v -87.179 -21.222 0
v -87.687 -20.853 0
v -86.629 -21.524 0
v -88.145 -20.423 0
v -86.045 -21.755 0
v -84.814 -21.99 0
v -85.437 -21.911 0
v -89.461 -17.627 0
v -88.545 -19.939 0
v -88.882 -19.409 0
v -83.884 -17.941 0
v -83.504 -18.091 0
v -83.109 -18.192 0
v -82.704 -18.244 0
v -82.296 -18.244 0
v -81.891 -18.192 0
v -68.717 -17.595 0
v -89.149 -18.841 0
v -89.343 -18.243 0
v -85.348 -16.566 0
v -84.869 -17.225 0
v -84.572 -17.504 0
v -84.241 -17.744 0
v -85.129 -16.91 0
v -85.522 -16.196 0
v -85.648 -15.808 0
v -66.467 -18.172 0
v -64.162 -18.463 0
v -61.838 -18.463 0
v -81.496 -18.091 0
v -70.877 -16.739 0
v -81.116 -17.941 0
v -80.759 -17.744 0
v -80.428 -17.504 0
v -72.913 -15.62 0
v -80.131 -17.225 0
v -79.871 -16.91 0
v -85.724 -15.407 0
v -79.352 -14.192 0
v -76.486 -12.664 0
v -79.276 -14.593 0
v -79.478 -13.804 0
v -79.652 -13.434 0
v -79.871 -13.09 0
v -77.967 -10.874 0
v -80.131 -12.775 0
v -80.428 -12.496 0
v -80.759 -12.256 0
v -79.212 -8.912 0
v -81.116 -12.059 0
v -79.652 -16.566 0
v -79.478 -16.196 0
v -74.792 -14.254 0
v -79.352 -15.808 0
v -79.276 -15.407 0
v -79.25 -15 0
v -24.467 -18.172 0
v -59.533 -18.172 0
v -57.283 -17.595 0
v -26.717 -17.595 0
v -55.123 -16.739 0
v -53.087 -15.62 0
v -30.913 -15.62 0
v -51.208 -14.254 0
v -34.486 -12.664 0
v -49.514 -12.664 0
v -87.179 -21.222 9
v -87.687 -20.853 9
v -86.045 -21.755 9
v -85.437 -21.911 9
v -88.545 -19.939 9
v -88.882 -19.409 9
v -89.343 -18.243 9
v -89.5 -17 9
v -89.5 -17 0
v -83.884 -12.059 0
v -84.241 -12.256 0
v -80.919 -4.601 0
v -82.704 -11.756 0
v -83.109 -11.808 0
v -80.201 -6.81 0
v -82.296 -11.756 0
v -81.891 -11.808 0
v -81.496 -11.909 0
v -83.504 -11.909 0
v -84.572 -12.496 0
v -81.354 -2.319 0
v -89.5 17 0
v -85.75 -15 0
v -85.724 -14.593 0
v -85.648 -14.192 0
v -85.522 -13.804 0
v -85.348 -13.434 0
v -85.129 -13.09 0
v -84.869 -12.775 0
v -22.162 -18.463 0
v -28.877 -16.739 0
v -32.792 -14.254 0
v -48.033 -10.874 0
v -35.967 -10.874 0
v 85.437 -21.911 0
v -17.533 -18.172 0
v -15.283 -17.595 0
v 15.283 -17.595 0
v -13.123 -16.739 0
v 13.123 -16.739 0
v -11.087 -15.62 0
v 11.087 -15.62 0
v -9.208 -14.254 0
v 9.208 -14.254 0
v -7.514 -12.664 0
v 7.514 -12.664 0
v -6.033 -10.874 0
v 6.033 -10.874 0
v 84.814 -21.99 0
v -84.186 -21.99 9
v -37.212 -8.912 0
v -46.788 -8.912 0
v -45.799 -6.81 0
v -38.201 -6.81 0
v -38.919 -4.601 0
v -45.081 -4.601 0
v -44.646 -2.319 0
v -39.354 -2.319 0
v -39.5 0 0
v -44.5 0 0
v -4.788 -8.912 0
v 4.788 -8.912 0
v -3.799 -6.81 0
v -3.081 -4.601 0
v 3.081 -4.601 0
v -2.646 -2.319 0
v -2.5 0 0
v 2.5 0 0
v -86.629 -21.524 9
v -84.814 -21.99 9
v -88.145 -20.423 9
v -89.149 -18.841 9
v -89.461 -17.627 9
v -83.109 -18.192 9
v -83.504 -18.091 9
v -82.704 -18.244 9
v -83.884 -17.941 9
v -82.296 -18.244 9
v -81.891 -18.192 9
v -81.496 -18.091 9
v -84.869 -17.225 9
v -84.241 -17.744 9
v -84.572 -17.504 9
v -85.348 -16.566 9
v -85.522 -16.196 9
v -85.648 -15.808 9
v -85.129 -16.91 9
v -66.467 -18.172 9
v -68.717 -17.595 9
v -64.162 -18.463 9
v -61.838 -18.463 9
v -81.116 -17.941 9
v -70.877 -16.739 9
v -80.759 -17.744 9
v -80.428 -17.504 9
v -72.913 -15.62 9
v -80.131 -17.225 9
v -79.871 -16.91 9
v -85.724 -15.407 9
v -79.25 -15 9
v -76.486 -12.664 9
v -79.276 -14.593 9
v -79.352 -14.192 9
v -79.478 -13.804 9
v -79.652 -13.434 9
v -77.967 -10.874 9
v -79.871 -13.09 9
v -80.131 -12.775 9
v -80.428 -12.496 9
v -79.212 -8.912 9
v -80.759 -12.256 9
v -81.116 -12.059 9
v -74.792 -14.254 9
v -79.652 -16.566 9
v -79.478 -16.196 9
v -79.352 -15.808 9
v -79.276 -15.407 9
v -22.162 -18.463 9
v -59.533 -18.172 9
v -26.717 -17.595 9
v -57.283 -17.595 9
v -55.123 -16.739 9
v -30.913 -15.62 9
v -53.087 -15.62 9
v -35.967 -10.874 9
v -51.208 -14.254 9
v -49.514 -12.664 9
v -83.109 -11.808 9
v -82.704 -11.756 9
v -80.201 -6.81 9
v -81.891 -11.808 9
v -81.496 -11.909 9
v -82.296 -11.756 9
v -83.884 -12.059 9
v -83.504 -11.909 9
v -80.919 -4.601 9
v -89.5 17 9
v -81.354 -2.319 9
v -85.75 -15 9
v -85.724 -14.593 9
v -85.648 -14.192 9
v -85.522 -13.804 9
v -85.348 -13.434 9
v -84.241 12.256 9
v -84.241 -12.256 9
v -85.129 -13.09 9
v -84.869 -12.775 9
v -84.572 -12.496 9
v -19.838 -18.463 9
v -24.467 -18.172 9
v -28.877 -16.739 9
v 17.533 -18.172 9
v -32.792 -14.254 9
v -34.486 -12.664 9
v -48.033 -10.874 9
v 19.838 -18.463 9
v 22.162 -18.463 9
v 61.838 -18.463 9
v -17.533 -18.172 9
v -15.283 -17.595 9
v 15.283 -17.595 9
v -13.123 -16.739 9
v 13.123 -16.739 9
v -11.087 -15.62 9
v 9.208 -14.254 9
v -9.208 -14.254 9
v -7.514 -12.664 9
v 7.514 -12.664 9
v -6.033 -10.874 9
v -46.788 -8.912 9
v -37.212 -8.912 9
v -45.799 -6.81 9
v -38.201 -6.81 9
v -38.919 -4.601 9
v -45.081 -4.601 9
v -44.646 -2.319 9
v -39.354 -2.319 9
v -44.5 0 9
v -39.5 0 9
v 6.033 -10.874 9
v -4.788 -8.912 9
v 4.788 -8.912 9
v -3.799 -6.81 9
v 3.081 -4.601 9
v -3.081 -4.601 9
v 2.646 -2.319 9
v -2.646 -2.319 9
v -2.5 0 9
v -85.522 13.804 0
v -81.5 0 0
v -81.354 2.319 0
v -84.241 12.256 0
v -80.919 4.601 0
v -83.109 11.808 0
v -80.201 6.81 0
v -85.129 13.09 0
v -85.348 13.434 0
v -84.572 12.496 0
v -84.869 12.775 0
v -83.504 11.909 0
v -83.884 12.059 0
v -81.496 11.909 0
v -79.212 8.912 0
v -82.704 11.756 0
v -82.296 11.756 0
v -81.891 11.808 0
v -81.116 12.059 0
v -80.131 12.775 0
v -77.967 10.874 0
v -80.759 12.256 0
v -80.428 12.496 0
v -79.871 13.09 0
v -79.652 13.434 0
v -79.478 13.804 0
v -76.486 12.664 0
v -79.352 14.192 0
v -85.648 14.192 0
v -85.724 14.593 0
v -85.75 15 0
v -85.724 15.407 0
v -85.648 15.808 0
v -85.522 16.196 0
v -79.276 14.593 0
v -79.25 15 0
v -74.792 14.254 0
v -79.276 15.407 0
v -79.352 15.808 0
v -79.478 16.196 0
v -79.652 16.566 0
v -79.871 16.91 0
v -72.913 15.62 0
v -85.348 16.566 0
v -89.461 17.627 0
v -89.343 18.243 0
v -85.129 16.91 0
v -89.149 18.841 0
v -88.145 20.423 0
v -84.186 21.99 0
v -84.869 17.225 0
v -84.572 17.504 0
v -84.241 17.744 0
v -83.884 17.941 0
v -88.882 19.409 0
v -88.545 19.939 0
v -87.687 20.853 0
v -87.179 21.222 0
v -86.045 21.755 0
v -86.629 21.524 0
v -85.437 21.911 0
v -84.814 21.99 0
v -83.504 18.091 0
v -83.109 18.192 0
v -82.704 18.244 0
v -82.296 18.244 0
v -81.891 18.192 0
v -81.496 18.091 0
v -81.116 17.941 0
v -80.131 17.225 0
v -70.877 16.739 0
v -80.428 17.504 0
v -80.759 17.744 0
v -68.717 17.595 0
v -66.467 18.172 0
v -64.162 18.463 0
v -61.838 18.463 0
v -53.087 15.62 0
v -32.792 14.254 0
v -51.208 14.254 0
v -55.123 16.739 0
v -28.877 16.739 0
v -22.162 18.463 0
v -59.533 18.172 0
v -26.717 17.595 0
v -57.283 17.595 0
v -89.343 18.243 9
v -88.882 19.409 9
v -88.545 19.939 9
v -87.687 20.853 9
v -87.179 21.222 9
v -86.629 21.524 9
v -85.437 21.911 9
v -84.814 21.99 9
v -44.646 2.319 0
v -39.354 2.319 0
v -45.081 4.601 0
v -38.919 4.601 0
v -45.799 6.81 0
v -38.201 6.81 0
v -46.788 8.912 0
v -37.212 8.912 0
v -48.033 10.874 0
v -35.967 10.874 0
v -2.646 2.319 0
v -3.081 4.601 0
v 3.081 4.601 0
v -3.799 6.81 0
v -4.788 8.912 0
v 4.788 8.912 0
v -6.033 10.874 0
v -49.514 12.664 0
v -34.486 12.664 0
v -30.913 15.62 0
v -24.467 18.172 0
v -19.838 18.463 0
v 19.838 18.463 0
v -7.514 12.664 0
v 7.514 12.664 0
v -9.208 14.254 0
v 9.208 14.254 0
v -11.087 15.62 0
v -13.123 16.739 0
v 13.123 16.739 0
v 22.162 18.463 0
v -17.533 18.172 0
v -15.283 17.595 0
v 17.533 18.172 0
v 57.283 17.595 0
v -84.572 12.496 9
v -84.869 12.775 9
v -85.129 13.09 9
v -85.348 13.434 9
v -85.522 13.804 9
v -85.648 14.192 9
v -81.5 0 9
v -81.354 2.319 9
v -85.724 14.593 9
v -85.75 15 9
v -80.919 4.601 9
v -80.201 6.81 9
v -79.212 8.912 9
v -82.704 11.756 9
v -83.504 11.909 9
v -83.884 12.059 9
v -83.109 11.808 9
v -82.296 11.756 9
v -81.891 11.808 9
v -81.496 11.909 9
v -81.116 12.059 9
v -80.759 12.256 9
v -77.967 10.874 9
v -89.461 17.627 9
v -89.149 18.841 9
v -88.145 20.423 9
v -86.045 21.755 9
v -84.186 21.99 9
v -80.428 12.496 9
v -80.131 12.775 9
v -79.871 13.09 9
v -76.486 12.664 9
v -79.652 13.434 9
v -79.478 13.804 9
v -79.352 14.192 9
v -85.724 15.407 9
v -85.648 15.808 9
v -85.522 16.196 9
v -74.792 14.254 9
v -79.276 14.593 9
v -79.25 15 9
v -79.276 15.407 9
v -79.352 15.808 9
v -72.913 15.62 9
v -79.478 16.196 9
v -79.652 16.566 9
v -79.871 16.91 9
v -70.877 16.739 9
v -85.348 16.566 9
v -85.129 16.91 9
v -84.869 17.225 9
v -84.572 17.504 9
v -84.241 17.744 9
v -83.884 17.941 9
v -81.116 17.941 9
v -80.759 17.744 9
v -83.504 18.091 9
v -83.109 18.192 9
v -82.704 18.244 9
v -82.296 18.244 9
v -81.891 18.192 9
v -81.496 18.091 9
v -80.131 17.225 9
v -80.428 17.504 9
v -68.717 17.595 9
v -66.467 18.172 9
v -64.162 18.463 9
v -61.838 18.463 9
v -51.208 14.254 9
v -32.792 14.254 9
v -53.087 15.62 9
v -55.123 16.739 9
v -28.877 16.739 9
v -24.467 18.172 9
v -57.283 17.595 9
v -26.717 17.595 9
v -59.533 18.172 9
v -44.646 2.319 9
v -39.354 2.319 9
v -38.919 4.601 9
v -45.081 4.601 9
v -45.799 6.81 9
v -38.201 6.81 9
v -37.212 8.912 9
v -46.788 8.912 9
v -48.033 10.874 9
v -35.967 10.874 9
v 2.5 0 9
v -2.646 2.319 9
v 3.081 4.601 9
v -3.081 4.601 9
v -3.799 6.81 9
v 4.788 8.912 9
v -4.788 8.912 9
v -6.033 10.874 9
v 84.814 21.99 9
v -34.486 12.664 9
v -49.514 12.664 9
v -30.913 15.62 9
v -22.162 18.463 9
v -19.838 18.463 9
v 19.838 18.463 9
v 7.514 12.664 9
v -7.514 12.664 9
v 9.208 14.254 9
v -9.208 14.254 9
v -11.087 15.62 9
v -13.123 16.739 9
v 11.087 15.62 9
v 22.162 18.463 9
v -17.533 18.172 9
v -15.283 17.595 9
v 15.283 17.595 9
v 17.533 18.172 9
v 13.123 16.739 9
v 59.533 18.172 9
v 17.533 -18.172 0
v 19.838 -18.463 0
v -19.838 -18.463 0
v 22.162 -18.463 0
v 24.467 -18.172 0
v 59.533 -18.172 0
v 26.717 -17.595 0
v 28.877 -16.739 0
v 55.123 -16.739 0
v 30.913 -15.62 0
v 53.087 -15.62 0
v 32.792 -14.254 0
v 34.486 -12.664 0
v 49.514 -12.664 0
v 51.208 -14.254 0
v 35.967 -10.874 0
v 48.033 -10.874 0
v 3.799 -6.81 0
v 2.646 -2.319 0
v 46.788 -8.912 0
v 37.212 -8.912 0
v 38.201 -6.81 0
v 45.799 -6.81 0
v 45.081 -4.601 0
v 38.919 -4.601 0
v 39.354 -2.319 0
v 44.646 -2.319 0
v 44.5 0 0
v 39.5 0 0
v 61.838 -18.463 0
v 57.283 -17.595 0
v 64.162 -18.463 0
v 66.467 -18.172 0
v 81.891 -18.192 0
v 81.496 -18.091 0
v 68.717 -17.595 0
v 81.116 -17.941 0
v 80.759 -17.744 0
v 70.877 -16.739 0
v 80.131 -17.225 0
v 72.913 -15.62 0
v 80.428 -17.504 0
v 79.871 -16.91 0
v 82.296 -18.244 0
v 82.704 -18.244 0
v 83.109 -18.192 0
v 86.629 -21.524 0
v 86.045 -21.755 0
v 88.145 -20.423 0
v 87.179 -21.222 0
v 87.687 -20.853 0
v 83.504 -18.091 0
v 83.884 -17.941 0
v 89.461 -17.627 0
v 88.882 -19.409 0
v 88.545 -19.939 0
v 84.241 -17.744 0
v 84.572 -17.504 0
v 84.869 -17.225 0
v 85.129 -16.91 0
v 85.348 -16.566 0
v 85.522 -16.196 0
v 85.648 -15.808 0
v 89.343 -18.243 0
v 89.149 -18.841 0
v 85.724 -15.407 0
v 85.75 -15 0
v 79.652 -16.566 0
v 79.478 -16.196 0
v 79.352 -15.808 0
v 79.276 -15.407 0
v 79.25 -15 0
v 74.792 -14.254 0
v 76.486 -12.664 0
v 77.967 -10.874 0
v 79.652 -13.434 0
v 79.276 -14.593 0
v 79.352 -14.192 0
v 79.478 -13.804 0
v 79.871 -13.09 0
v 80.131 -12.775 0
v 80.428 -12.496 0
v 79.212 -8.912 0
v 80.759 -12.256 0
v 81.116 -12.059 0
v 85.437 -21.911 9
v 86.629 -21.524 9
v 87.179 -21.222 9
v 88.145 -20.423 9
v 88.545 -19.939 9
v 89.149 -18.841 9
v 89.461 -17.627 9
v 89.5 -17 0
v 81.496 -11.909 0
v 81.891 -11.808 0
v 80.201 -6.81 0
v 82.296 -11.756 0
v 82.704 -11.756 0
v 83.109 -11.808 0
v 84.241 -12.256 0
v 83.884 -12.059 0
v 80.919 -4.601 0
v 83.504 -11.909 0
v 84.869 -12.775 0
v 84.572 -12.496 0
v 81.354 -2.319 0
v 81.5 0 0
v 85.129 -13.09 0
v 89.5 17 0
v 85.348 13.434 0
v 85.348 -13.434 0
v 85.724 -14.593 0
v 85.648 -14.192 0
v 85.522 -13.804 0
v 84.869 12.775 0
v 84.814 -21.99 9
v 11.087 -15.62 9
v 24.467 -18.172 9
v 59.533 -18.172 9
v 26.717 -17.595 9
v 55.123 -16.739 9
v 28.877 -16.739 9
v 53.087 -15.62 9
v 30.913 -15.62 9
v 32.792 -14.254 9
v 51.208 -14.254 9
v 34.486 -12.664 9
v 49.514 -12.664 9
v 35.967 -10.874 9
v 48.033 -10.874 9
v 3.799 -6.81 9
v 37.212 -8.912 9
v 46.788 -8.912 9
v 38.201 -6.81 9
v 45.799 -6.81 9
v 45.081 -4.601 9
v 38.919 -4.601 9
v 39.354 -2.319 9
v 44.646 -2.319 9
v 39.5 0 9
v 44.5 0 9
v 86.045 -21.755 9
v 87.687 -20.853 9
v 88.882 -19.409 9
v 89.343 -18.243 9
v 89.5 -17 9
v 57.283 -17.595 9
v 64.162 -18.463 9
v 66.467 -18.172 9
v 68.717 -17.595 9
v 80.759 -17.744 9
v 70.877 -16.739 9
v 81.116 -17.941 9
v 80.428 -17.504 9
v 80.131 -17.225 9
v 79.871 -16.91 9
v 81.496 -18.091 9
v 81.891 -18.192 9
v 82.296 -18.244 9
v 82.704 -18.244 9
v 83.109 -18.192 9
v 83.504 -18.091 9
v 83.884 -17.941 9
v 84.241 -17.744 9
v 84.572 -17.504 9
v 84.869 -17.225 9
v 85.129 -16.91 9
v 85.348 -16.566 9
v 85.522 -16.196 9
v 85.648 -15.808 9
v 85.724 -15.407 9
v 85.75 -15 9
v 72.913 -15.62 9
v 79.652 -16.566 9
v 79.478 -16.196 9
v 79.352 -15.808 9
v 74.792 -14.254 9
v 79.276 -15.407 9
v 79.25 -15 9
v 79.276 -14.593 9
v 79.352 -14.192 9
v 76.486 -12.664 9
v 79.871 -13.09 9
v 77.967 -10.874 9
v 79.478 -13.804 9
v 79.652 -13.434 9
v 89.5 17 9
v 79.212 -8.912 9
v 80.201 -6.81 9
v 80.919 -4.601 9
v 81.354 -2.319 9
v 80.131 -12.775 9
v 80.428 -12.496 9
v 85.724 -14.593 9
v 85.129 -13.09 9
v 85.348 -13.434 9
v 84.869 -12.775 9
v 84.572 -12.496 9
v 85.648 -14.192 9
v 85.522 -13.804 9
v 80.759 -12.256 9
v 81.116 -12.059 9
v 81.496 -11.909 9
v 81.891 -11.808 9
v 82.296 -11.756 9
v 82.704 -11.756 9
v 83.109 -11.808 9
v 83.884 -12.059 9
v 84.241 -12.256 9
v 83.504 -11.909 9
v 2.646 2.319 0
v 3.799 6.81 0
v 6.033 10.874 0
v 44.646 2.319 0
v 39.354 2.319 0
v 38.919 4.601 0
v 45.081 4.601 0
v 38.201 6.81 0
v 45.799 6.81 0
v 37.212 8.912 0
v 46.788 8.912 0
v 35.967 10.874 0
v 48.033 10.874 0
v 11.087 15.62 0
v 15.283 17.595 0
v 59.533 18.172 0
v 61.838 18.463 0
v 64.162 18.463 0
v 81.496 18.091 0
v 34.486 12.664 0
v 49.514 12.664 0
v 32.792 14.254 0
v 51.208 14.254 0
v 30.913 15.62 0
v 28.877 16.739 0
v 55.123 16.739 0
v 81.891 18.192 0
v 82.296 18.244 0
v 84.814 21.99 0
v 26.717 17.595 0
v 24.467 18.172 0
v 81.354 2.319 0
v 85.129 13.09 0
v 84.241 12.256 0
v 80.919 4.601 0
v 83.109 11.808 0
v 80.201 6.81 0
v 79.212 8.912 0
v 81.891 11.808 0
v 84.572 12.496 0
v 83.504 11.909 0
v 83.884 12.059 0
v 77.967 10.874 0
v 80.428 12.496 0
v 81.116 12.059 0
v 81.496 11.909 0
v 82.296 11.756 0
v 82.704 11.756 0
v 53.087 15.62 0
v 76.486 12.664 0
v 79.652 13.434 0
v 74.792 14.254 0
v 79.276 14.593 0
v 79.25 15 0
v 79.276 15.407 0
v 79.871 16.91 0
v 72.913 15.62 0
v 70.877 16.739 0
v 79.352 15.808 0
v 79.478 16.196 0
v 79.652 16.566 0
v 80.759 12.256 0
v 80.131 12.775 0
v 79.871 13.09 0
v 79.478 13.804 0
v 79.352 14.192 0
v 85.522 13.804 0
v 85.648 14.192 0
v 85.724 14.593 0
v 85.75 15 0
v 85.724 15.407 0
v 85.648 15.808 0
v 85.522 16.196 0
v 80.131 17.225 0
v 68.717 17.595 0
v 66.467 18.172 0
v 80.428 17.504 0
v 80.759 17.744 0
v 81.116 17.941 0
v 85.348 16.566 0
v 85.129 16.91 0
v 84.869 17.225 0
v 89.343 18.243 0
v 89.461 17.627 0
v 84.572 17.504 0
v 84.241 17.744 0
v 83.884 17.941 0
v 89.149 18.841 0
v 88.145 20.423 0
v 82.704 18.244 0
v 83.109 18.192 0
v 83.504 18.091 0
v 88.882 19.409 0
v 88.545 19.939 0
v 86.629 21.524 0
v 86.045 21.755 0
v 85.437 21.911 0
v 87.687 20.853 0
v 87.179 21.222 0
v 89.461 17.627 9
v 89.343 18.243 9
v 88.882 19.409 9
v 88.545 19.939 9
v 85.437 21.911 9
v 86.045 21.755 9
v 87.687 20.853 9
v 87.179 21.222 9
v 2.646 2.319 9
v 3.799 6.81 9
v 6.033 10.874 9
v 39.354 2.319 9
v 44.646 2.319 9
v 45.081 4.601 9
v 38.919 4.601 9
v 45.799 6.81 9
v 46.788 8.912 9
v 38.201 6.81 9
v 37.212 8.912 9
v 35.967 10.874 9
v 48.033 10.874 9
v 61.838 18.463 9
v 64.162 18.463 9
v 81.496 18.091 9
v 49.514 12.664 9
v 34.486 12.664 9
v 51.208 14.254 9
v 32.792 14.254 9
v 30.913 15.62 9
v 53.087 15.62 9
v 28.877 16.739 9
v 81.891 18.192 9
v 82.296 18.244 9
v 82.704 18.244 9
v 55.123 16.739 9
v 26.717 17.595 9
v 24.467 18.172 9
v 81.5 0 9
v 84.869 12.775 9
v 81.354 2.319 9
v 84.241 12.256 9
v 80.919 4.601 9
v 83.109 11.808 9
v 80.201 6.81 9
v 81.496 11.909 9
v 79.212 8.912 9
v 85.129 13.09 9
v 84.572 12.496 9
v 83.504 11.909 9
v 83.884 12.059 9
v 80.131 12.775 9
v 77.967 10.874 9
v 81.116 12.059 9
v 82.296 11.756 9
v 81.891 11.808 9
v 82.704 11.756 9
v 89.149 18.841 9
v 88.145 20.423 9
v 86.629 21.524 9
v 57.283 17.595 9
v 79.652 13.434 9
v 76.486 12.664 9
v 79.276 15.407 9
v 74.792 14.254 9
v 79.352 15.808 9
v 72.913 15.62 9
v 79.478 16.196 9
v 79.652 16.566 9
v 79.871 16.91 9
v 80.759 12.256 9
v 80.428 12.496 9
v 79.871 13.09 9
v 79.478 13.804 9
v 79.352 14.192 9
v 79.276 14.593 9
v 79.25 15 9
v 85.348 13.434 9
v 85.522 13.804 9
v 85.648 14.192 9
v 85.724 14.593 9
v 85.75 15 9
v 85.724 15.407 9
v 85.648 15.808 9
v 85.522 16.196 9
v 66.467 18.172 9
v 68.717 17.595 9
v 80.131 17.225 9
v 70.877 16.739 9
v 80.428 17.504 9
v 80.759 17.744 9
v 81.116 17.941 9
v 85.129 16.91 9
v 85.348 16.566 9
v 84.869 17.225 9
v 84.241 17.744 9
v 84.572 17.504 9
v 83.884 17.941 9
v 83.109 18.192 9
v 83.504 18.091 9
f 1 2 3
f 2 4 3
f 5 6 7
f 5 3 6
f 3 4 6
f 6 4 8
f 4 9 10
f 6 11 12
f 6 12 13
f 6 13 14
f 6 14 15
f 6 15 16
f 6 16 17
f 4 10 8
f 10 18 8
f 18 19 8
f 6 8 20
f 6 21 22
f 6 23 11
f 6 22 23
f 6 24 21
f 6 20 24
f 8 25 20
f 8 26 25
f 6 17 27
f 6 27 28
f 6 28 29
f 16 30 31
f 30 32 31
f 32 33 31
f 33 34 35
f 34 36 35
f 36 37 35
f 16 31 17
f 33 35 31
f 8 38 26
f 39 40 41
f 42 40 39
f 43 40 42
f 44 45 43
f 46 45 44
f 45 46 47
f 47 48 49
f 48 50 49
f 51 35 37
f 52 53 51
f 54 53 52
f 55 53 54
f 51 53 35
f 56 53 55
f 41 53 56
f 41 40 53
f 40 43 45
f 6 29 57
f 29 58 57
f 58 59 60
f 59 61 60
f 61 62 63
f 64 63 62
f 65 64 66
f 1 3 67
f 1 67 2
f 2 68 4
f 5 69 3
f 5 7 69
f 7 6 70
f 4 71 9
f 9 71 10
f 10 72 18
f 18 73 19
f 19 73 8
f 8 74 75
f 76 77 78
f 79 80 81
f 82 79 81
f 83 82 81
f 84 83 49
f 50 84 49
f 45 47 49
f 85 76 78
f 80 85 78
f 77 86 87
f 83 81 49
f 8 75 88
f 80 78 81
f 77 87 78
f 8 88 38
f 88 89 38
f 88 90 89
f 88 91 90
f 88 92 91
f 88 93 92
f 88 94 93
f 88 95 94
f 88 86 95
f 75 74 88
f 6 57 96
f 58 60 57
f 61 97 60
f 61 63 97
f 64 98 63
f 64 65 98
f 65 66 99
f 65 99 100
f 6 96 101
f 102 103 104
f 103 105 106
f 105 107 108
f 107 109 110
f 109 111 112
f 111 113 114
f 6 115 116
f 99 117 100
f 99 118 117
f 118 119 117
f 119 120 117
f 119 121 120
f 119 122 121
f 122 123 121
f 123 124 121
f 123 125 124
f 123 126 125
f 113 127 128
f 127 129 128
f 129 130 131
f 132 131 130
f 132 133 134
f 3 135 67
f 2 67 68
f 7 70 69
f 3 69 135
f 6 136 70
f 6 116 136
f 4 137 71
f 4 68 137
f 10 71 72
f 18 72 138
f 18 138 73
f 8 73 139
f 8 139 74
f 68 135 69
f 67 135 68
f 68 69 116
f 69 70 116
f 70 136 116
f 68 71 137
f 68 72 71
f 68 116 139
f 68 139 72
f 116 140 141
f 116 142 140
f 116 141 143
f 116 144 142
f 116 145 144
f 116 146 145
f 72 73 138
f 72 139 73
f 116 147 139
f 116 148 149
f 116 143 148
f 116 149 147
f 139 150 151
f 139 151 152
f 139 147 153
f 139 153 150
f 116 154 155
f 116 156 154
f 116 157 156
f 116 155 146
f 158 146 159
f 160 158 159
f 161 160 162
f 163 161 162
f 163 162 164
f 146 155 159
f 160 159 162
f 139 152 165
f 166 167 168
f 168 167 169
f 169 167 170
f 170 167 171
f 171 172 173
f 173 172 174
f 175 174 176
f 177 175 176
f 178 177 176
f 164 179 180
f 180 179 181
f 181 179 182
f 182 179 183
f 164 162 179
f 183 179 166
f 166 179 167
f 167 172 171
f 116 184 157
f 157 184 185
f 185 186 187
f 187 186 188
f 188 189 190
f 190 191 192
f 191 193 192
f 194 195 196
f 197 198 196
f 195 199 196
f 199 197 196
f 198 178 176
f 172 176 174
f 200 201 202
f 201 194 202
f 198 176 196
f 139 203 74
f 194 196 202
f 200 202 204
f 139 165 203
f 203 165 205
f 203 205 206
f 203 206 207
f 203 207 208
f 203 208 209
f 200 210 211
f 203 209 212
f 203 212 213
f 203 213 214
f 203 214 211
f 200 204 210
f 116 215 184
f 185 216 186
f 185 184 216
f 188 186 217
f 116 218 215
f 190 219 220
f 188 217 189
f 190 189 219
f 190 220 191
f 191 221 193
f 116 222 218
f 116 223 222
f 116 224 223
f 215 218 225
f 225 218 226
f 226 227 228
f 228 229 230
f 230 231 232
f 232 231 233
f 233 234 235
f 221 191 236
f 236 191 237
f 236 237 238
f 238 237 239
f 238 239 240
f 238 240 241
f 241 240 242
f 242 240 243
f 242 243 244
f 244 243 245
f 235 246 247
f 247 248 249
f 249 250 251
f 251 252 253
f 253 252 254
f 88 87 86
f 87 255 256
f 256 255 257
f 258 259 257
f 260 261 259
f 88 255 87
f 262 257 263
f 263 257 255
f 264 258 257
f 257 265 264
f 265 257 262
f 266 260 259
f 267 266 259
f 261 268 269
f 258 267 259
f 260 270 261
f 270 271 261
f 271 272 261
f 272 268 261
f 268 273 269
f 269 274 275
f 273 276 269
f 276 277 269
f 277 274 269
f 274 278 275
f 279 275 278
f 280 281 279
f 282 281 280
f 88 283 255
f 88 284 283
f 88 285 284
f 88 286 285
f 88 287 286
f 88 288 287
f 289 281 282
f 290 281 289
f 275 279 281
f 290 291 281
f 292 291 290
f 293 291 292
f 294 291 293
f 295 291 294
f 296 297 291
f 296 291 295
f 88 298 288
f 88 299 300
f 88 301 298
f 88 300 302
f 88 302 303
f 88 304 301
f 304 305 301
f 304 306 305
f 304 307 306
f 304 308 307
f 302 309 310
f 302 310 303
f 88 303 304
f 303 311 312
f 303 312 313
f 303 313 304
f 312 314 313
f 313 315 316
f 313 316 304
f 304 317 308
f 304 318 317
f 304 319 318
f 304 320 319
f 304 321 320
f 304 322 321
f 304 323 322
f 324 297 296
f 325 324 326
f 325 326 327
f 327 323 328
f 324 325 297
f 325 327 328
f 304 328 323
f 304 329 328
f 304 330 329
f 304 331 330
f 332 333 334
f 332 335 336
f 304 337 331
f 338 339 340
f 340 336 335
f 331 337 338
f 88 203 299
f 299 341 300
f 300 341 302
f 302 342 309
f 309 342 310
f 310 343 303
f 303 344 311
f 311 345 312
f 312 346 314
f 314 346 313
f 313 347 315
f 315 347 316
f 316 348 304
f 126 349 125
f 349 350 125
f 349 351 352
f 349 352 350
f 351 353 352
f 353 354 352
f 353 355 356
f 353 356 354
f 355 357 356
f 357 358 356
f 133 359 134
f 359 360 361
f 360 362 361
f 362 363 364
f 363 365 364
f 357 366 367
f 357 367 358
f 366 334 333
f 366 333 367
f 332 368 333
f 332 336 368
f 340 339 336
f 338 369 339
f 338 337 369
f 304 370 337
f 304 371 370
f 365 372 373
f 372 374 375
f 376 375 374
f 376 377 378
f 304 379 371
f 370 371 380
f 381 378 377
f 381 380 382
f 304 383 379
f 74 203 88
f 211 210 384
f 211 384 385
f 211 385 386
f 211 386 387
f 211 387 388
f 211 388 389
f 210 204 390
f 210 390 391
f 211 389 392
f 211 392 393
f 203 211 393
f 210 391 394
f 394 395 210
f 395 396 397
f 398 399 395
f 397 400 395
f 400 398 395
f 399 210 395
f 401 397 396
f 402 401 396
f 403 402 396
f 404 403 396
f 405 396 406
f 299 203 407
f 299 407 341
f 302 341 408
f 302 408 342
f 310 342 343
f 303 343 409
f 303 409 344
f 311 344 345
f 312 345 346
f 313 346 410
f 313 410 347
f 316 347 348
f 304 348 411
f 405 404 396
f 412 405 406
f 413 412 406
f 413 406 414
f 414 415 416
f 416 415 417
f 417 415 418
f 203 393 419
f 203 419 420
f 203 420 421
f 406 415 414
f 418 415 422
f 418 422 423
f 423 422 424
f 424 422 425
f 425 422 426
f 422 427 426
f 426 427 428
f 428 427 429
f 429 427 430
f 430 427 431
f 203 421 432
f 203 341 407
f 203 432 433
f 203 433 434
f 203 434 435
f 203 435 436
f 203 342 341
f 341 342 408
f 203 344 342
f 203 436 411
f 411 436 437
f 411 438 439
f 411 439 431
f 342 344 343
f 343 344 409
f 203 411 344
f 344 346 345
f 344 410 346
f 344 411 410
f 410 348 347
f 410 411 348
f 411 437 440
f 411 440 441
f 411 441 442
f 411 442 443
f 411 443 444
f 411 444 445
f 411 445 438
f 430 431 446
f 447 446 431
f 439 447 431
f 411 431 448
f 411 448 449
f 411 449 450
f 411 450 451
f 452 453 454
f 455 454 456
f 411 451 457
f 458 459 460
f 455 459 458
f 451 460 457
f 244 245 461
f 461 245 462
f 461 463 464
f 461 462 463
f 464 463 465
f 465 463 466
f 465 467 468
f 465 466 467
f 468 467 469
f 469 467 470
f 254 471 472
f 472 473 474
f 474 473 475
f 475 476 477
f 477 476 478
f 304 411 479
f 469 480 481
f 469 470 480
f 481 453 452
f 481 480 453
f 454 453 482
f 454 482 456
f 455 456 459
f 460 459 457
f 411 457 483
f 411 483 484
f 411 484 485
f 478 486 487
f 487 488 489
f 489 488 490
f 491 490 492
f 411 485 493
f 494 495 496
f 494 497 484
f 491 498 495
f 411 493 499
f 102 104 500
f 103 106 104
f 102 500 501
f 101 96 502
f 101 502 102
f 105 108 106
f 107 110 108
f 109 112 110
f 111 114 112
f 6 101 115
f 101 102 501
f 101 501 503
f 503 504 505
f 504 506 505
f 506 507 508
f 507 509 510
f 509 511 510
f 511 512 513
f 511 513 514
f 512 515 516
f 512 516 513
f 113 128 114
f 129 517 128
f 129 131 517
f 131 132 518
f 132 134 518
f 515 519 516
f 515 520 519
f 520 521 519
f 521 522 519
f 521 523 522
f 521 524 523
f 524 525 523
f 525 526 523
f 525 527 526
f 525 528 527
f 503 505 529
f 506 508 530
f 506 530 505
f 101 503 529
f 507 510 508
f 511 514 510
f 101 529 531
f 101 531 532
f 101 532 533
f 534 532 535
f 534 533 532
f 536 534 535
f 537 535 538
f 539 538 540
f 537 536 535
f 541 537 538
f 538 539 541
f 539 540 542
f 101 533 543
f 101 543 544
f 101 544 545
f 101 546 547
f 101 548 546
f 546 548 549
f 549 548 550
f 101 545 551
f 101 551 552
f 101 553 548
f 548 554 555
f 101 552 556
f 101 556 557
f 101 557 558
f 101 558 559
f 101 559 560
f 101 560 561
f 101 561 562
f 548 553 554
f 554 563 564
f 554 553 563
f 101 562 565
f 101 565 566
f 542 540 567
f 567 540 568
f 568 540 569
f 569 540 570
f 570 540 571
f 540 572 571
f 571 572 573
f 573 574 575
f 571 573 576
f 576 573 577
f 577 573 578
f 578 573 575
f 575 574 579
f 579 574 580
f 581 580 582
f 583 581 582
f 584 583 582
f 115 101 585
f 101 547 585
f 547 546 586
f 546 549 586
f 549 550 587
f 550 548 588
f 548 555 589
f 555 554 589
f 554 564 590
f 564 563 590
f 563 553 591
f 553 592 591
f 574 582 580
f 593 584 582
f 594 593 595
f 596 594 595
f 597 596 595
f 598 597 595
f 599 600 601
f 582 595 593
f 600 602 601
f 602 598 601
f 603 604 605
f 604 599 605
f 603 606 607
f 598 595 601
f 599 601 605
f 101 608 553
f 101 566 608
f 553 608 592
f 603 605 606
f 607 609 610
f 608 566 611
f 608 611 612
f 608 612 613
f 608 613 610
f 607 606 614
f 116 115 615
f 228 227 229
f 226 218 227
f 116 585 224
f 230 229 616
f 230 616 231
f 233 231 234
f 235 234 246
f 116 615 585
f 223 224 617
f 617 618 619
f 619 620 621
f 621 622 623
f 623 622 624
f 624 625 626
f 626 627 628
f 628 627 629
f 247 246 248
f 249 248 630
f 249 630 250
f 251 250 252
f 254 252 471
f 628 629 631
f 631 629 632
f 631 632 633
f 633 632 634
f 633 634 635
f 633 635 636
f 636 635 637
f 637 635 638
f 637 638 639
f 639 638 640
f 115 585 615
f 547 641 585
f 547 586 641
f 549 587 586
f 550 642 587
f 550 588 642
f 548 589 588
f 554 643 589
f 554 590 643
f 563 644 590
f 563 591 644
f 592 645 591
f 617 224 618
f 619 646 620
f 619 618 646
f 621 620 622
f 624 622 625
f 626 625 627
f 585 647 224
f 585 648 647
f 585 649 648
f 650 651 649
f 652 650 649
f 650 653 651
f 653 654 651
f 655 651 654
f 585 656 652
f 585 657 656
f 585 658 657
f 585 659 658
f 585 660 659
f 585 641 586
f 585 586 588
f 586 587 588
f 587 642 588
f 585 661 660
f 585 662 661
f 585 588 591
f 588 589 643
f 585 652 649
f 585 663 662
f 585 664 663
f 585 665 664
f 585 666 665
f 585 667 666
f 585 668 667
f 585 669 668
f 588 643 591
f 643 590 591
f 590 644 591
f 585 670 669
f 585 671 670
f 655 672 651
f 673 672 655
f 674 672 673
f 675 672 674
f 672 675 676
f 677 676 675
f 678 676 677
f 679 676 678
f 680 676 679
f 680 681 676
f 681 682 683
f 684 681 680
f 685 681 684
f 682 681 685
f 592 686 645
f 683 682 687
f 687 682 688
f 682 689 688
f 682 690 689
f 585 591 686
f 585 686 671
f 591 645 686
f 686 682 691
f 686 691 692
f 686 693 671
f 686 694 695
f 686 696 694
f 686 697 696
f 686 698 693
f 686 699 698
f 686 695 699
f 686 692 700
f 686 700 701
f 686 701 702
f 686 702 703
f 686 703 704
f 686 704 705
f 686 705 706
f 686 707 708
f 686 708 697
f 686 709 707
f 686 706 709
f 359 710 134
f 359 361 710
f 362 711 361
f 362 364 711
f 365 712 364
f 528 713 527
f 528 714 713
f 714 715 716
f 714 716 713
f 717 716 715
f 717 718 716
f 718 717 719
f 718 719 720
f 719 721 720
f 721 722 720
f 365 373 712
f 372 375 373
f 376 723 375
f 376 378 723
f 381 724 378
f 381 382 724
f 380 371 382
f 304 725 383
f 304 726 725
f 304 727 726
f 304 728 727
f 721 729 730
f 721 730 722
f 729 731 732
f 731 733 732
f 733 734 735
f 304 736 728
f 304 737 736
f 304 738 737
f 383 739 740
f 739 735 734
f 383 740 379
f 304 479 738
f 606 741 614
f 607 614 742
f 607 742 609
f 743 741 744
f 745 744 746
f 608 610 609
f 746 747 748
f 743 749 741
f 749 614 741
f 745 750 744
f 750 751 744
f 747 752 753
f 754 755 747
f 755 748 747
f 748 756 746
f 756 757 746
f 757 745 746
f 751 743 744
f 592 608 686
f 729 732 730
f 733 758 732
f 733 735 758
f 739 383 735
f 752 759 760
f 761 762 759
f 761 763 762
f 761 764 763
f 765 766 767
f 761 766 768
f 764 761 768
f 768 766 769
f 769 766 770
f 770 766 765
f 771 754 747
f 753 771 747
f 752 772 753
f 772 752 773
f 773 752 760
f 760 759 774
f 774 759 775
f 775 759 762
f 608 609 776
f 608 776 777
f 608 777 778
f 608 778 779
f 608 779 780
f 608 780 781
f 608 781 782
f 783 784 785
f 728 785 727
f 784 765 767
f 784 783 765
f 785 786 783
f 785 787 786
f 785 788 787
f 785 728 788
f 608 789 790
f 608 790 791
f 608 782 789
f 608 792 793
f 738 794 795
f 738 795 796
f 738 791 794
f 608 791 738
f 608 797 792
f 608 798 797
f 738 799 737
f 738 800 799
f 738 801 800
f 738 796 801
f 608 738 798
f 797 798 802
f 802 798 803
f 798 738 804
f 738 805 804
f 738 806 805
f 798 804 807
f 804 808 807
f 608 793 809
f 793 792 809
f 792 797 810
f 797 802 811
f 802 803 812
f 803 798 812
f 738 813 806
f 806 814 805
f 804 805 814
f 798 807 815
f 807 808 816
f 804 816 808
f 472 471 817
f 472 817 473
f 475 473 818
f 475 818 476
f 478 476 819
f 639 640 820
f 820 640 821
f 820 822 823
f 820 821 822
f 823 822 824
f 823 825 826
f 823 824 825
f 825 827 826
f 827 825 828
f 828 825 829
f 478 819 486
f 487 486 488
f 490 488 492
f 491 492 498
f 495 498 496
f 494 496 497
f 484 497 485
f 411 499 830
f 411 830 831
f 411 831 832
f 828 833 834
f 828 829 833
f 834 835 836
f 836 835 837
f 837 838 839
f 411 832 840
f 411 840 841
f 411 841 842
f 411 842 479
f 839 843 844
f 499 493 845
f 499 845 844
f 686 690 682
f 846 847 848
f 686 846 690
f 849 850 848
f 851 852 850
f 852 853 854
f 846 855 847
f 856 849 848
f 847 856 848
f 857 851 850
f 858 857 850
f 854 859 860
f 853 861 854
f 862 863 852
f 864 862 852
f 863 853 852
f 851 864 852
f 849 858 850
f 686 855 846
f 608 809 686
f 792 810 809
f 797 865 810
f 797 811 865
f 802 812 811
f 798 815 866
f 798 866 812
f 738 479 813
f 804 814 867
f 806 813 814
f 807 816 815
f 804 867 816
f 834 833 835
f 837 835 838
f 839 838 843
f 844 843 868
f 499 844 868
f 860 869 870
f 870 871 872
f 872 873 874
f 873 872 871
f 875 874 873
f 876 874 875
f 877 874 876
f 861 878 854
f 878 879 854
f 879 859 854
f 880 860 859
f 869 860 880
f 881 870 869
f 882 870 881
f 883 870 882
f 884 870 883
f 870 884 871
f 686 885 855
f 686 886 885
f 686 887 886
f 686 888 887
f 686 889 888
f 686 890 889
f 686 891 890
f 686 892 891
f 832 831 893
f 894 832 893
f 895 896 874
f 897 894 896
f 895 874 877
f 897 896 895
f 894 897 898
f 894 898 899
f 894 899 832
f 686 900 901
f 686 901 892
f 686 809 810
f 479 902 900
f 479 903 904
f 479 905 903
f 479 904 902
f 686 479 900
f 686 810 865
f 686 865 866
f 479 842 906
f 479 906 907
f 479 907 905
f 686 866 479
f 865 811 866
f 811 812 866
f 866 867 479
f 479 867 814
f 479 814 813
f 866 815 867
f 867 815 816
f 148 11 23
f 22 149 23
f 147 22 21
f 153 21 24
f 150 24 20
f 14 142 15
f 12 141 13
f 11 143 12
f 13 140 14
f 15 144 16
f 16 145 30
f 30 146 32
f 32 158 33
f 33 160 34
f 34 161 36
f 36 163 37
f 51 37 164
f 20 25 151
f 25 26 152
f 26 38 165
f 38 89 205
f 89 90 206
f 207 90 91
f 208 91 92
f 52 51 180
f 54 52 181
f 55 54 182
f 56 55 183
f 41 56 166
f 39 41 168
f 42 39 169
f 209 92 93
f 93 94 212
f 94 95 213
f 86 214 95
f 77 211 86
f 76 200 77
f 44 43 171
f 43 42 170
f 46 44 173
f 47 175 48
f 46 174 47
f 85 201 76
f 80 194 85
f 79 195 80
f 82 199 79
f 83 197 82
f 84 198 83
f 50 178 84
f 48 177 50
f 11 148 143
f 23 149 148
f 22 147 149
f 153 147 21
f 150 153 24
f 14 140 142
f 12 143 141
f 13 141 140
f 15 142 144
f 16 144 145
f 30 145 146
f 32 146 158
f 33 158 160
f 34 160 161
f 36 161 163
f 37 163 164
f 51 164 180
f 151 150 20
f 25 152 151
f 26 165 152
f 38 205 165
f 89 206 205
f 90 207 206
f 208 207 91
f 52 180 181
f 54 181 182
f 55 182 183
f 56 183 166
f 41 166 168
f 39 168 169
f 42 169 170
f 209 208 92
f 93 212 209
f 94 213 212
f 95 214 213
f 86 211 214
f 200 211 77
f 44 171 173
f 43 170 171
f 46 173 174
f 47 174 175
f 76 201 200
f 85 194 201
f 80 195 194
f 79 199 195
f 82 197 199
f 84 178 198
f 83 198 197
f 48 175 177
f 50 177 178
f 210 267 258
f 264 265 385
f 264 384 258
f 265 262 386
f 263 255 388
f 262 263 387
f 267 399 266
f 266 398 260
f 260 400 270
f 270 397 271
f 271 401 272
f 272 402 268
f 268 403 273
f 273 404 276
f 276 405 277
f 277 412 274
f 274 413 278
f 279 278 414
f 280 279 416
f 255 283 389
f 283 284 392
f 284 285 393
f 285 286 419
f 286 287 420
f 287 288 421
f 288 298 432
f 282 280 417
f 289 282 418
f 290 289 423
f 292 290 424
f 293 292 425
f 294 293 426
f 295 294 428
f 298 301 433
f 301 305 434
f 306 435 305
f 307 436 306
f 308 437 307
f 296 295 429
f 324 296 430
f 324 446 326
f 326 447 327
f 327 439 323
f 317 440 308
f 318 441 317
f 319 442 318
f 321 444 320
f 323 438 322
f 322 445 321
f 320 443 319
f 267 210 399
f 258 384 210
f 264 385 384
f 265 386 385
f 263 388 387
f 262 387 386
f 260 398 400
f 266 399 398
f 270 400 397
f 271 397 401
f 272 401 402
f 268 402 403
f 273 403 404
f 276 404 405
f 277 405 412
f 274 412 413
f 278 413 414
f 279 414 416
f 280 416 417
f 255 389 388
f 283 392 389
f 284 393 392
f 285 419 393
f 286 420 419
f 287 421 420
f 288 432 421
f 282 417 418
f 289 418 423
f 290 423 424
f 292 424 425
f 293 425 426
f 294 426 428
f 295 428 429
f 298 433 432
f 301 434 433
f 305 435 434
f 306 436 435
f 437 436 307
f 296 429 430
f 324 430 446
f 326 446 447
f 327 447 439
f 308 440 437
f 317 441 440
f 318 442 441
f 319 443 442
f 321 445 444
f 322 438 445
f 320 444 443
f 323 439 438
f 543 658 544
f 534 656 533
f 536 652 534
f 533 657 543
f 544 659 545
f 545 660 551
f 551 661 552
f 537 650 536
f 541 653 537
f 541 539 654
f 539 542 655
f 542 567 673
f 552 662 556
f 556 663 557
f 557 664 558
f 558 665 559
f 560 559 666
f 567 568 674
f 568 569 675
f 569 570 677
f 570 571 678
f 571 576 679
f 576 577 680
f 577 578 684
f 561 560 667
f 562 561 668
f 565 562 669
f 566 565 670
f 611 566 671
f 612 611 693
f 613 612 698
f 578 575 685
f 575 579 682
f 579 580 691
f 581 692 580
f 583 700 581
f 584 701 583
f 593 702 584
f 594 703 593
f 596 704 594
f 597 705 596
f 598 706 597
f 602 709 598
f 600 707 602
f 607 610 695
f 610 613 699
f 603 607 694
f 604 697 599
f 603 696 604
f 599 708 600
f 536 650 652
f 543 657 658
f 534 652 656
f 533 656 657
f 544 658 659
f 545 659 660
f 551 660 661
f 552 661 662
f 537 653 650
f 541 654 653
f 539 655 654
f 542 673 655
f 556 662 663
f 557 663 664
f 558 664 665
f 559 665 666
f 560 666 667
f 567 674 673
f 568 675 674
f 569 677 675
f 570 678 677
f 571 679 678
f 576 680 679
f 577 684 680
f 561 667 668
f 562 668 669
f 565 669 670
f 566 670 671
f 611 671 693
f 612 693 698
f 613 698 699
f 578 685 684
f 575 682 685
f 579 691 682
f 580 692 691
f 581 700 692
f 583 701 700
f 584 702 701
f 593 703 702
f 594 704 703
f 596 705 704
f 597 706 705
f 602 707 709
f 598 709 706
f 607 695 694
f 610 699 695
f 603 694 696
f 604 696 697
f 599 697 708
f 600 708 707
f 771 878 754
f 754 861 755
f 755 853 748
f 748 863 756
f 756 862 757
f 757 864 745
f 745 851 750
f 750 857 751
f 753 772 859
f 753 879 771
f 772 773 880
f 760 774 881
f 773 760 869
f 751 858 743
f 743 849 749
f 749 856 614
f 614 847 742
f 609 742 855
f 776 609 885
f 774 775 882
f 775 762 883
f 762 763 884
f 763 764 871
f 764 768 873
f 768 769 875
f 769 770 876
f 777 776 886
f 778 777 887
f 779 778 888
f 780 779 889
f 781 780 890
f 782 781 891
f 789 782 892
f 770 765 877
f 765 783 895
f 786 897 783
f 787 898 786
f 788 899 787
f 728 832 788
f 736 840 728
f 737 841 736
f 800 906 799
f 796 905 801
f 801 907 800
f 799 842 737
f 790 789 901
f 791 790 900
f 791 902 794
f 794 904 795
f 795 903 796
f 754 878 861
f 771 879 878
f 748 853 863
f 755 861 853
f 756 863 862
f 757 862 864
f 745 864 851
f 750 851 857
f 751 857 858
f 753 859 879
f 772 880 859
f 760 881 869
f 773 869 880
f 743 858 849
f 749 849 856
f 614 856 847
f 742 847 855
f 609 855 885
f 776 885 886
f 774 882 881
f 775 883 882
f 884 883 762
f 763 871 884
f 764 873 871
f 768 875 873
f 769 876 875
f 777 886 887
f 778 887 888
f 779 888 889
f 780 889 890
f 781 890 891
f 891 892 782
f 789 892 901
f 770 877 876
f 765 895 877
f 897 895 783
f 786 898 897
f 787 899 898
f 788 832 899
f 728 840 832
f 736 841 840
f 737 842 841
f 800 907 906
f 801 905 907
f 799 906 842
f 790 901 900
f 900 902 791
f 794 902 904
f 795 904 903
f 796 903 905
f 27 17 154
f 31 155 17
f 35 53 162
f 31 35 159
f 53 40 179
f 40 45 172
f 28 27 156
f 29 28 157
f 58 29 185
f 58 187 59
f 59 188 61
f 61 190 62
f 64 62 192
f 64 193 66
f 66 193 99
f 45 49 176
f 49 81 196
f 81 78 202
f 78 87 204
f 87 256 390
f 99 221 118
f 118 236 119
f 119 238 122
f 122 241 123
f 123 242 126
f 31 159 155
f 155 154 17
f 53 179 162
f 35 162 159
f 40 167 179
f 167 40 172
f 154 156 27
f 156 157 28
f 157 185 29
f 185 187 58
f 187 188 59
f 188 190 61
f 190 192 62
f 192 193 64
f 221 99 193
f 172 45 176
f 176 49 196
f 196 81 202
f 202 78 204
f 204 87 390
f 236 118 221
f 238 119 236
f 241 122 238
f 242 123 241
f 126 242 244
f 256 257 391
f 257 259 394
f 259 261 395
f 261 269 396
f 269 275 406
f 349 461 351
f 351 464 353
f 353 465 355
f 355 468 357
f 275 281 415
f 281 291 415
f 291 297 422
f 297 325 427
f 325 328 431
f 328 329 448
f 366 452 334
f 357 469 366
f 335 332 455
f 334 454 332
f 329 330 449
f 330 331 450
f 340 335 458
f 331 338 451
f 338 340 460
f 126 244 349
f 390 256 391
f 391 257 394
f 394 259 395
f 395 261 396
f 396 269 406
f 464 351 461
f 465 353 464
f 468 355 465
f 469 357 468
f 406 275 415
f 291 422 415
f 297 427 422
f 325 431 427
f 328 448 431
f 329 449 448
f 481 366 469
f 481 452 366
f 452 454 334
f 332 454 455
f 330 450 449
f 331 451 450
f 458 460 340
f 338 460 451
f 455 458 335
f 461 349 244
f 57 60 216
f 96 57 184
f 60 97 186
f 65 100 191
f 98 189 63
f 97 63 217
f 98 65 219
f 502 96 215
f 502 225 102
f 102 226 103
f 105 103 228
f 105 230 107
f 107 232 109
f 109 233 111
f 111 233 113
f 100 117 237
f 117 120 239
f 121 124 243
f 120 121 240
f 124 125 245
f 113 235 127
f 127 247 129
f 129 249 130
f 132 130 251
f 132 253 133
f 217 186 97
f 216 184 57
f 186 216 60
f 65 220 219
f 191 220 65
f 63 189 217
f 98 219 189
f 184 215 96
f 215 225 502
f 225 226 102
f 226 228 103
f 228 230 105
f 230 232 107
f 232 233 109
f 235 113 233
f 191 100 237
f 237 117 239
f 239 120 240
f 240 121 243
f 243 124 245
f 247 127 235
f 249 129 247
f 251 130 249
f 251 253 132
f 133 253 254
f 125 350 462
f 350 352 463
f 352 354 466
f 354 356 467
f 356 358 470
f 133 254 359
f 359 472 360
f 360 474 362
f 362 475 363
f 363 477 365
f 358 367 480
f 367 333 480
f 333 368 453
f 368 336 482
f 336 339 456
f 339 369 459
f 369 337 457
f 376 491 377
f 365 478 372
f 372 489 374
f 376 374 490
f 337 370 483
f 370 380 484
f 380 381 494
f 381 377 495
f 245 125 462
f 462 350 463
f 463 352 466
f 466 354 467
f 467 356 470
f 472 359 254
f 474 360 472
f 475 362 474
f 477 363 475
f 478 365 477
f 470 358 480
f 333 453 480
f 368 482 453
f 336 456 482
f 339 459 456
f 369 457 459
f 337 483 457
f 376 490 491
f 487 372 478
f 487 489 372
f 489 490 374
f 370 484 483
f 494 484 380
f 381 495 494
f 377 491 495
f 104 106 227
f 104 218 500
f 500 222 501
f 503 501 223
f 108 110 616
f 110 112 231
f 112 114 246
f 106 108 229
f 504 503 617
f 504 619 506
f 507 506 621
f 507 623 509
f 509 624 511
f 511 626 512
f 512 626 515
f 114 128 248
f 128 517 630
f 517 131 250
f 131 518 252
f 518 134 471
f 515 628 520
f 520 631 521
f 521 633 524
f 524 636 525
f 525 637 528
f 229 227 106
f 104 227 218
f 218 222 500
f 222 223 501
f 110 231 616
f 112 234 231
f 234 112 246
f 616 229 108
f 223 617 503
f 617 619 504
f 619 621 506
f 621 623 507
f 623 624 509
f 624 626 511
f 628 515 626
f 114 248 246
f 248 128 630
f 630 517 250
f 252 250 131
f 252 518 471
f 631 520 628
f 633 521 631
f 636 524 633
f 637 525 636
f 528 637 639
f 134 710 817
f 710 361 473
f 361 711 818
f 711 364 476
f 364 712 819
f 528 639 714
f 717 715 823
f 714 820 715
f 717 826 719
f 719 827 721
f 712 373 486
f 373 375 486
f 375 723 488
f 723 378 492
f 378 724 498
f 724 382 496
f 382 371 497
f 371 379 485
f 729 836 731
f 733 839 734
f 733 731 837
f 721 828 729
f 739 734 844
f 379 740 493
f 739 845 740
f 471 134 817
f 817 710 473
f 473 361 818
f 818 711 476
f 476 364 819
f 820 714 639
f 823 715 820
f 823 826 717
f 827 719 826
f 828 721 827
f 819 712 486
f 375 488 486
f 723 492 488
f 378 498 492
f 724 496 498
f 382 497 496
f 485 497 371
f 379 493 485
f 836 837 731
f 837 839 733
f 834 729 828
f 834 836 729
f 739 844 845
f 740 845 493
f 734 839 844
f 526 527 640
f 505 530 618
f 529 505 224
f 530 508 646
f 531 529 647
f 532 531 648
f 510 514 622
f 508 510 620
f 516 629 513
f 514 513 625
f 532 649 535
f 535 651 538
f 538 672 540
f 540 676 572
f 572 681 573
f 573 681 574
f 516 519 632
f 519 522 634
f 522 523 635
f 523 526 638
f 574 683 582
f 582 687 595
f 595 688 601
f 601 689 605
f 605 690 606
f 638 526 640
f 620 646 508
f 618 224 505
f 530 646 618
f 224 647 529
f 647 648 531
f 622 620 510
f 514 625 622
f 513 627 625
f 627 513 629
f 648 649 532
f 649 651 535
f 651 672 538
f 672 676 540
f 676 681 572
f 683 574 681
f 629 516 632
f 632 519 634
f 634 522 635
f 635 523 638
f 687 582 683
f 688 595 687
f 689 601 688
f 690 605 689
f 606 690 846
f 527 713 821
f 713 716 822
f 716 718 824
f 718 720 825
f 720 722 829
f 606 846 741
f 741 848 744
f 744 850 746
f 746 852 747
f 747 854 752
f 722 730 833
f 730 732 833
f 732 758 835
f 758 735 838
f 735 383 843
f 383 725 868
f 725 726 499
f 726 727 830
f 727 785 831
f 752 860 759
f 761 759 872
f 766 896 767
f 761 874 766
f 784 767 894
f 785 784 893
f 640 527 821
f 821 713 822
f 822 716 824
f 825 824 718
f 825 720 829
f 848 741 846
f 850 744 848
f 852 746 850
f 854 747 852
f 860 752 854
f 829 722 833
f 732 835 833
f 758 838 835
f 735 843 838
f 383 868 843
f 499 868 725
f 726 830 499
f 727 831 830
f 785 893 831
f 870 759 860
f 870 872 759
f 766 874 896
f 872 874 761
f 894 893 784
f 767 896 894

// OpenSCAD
$fn = 50;

difference() {
	union() {
		hull() {
			translate(v = [-84.5, 17.0, 0]) {
				cylinder(h = 9, r = 5);
			}
			translate(v = [84.5, 17.0, 0]) {
				cylinder(h = 9, r = 5);
			}
			translate(v = [-84.5, -17.0, 0]) {
				cylinder(h = 9, r = 5);
			}
			translate(v = [84.5, -17.0, 0]) {
				cylinder(h = 9, r = 5);
			}
		}
	}
	union() {
		translate(v = [-82.5, -15.0, -100.0]) {
			cylinder(h = 200, r = 3.25);
		}
		translate(v = [-82.5, 15.0, -100.0]) {
			cylinder(h = 200, r = 3.25);
		}
		translate(v = [82.5, -15.0, -100.0]) {
			cylinder(h = 200, r = 3.25);
		}
		translate(v = [82.5, 15.0, -100.0]) {
			cylinder(h = 200, r = 3.25);
		}
		translate(v = [-82.5, -15.0, -100.0]) {
			cylinder(h = 200, r = 1.8);
		}
		translate(v = [-82.5, 15.0, -100.0]) {
			cylinder(h = 200, r = 1.8);
		}
		translate(v = [82.5, -15.0, -100.0]) {
			cylinder(h = 200, r = 1.8);
		}
		translate(v = [82.5, 15.0, -100.0]) {
			cylinder(h = 200, r = 1.8);
		}
		translate(v = [-63.0, 0, 0.0]) {
			cylinder(h = 9, r = 18.5);
		}
		translate(v = [-21.0, 0, 0.0]) {
			cylinder(h = 9, r = 18.5);
		}
		translate(v = [21.0, 0, 0.0]) {
			cylinder(h = 9, r = 18.5);
		}
		translate(v = [63.0, 0, 0.0]) {
			cylinder(h = 9, r = 18.5);
		}
	}
}
